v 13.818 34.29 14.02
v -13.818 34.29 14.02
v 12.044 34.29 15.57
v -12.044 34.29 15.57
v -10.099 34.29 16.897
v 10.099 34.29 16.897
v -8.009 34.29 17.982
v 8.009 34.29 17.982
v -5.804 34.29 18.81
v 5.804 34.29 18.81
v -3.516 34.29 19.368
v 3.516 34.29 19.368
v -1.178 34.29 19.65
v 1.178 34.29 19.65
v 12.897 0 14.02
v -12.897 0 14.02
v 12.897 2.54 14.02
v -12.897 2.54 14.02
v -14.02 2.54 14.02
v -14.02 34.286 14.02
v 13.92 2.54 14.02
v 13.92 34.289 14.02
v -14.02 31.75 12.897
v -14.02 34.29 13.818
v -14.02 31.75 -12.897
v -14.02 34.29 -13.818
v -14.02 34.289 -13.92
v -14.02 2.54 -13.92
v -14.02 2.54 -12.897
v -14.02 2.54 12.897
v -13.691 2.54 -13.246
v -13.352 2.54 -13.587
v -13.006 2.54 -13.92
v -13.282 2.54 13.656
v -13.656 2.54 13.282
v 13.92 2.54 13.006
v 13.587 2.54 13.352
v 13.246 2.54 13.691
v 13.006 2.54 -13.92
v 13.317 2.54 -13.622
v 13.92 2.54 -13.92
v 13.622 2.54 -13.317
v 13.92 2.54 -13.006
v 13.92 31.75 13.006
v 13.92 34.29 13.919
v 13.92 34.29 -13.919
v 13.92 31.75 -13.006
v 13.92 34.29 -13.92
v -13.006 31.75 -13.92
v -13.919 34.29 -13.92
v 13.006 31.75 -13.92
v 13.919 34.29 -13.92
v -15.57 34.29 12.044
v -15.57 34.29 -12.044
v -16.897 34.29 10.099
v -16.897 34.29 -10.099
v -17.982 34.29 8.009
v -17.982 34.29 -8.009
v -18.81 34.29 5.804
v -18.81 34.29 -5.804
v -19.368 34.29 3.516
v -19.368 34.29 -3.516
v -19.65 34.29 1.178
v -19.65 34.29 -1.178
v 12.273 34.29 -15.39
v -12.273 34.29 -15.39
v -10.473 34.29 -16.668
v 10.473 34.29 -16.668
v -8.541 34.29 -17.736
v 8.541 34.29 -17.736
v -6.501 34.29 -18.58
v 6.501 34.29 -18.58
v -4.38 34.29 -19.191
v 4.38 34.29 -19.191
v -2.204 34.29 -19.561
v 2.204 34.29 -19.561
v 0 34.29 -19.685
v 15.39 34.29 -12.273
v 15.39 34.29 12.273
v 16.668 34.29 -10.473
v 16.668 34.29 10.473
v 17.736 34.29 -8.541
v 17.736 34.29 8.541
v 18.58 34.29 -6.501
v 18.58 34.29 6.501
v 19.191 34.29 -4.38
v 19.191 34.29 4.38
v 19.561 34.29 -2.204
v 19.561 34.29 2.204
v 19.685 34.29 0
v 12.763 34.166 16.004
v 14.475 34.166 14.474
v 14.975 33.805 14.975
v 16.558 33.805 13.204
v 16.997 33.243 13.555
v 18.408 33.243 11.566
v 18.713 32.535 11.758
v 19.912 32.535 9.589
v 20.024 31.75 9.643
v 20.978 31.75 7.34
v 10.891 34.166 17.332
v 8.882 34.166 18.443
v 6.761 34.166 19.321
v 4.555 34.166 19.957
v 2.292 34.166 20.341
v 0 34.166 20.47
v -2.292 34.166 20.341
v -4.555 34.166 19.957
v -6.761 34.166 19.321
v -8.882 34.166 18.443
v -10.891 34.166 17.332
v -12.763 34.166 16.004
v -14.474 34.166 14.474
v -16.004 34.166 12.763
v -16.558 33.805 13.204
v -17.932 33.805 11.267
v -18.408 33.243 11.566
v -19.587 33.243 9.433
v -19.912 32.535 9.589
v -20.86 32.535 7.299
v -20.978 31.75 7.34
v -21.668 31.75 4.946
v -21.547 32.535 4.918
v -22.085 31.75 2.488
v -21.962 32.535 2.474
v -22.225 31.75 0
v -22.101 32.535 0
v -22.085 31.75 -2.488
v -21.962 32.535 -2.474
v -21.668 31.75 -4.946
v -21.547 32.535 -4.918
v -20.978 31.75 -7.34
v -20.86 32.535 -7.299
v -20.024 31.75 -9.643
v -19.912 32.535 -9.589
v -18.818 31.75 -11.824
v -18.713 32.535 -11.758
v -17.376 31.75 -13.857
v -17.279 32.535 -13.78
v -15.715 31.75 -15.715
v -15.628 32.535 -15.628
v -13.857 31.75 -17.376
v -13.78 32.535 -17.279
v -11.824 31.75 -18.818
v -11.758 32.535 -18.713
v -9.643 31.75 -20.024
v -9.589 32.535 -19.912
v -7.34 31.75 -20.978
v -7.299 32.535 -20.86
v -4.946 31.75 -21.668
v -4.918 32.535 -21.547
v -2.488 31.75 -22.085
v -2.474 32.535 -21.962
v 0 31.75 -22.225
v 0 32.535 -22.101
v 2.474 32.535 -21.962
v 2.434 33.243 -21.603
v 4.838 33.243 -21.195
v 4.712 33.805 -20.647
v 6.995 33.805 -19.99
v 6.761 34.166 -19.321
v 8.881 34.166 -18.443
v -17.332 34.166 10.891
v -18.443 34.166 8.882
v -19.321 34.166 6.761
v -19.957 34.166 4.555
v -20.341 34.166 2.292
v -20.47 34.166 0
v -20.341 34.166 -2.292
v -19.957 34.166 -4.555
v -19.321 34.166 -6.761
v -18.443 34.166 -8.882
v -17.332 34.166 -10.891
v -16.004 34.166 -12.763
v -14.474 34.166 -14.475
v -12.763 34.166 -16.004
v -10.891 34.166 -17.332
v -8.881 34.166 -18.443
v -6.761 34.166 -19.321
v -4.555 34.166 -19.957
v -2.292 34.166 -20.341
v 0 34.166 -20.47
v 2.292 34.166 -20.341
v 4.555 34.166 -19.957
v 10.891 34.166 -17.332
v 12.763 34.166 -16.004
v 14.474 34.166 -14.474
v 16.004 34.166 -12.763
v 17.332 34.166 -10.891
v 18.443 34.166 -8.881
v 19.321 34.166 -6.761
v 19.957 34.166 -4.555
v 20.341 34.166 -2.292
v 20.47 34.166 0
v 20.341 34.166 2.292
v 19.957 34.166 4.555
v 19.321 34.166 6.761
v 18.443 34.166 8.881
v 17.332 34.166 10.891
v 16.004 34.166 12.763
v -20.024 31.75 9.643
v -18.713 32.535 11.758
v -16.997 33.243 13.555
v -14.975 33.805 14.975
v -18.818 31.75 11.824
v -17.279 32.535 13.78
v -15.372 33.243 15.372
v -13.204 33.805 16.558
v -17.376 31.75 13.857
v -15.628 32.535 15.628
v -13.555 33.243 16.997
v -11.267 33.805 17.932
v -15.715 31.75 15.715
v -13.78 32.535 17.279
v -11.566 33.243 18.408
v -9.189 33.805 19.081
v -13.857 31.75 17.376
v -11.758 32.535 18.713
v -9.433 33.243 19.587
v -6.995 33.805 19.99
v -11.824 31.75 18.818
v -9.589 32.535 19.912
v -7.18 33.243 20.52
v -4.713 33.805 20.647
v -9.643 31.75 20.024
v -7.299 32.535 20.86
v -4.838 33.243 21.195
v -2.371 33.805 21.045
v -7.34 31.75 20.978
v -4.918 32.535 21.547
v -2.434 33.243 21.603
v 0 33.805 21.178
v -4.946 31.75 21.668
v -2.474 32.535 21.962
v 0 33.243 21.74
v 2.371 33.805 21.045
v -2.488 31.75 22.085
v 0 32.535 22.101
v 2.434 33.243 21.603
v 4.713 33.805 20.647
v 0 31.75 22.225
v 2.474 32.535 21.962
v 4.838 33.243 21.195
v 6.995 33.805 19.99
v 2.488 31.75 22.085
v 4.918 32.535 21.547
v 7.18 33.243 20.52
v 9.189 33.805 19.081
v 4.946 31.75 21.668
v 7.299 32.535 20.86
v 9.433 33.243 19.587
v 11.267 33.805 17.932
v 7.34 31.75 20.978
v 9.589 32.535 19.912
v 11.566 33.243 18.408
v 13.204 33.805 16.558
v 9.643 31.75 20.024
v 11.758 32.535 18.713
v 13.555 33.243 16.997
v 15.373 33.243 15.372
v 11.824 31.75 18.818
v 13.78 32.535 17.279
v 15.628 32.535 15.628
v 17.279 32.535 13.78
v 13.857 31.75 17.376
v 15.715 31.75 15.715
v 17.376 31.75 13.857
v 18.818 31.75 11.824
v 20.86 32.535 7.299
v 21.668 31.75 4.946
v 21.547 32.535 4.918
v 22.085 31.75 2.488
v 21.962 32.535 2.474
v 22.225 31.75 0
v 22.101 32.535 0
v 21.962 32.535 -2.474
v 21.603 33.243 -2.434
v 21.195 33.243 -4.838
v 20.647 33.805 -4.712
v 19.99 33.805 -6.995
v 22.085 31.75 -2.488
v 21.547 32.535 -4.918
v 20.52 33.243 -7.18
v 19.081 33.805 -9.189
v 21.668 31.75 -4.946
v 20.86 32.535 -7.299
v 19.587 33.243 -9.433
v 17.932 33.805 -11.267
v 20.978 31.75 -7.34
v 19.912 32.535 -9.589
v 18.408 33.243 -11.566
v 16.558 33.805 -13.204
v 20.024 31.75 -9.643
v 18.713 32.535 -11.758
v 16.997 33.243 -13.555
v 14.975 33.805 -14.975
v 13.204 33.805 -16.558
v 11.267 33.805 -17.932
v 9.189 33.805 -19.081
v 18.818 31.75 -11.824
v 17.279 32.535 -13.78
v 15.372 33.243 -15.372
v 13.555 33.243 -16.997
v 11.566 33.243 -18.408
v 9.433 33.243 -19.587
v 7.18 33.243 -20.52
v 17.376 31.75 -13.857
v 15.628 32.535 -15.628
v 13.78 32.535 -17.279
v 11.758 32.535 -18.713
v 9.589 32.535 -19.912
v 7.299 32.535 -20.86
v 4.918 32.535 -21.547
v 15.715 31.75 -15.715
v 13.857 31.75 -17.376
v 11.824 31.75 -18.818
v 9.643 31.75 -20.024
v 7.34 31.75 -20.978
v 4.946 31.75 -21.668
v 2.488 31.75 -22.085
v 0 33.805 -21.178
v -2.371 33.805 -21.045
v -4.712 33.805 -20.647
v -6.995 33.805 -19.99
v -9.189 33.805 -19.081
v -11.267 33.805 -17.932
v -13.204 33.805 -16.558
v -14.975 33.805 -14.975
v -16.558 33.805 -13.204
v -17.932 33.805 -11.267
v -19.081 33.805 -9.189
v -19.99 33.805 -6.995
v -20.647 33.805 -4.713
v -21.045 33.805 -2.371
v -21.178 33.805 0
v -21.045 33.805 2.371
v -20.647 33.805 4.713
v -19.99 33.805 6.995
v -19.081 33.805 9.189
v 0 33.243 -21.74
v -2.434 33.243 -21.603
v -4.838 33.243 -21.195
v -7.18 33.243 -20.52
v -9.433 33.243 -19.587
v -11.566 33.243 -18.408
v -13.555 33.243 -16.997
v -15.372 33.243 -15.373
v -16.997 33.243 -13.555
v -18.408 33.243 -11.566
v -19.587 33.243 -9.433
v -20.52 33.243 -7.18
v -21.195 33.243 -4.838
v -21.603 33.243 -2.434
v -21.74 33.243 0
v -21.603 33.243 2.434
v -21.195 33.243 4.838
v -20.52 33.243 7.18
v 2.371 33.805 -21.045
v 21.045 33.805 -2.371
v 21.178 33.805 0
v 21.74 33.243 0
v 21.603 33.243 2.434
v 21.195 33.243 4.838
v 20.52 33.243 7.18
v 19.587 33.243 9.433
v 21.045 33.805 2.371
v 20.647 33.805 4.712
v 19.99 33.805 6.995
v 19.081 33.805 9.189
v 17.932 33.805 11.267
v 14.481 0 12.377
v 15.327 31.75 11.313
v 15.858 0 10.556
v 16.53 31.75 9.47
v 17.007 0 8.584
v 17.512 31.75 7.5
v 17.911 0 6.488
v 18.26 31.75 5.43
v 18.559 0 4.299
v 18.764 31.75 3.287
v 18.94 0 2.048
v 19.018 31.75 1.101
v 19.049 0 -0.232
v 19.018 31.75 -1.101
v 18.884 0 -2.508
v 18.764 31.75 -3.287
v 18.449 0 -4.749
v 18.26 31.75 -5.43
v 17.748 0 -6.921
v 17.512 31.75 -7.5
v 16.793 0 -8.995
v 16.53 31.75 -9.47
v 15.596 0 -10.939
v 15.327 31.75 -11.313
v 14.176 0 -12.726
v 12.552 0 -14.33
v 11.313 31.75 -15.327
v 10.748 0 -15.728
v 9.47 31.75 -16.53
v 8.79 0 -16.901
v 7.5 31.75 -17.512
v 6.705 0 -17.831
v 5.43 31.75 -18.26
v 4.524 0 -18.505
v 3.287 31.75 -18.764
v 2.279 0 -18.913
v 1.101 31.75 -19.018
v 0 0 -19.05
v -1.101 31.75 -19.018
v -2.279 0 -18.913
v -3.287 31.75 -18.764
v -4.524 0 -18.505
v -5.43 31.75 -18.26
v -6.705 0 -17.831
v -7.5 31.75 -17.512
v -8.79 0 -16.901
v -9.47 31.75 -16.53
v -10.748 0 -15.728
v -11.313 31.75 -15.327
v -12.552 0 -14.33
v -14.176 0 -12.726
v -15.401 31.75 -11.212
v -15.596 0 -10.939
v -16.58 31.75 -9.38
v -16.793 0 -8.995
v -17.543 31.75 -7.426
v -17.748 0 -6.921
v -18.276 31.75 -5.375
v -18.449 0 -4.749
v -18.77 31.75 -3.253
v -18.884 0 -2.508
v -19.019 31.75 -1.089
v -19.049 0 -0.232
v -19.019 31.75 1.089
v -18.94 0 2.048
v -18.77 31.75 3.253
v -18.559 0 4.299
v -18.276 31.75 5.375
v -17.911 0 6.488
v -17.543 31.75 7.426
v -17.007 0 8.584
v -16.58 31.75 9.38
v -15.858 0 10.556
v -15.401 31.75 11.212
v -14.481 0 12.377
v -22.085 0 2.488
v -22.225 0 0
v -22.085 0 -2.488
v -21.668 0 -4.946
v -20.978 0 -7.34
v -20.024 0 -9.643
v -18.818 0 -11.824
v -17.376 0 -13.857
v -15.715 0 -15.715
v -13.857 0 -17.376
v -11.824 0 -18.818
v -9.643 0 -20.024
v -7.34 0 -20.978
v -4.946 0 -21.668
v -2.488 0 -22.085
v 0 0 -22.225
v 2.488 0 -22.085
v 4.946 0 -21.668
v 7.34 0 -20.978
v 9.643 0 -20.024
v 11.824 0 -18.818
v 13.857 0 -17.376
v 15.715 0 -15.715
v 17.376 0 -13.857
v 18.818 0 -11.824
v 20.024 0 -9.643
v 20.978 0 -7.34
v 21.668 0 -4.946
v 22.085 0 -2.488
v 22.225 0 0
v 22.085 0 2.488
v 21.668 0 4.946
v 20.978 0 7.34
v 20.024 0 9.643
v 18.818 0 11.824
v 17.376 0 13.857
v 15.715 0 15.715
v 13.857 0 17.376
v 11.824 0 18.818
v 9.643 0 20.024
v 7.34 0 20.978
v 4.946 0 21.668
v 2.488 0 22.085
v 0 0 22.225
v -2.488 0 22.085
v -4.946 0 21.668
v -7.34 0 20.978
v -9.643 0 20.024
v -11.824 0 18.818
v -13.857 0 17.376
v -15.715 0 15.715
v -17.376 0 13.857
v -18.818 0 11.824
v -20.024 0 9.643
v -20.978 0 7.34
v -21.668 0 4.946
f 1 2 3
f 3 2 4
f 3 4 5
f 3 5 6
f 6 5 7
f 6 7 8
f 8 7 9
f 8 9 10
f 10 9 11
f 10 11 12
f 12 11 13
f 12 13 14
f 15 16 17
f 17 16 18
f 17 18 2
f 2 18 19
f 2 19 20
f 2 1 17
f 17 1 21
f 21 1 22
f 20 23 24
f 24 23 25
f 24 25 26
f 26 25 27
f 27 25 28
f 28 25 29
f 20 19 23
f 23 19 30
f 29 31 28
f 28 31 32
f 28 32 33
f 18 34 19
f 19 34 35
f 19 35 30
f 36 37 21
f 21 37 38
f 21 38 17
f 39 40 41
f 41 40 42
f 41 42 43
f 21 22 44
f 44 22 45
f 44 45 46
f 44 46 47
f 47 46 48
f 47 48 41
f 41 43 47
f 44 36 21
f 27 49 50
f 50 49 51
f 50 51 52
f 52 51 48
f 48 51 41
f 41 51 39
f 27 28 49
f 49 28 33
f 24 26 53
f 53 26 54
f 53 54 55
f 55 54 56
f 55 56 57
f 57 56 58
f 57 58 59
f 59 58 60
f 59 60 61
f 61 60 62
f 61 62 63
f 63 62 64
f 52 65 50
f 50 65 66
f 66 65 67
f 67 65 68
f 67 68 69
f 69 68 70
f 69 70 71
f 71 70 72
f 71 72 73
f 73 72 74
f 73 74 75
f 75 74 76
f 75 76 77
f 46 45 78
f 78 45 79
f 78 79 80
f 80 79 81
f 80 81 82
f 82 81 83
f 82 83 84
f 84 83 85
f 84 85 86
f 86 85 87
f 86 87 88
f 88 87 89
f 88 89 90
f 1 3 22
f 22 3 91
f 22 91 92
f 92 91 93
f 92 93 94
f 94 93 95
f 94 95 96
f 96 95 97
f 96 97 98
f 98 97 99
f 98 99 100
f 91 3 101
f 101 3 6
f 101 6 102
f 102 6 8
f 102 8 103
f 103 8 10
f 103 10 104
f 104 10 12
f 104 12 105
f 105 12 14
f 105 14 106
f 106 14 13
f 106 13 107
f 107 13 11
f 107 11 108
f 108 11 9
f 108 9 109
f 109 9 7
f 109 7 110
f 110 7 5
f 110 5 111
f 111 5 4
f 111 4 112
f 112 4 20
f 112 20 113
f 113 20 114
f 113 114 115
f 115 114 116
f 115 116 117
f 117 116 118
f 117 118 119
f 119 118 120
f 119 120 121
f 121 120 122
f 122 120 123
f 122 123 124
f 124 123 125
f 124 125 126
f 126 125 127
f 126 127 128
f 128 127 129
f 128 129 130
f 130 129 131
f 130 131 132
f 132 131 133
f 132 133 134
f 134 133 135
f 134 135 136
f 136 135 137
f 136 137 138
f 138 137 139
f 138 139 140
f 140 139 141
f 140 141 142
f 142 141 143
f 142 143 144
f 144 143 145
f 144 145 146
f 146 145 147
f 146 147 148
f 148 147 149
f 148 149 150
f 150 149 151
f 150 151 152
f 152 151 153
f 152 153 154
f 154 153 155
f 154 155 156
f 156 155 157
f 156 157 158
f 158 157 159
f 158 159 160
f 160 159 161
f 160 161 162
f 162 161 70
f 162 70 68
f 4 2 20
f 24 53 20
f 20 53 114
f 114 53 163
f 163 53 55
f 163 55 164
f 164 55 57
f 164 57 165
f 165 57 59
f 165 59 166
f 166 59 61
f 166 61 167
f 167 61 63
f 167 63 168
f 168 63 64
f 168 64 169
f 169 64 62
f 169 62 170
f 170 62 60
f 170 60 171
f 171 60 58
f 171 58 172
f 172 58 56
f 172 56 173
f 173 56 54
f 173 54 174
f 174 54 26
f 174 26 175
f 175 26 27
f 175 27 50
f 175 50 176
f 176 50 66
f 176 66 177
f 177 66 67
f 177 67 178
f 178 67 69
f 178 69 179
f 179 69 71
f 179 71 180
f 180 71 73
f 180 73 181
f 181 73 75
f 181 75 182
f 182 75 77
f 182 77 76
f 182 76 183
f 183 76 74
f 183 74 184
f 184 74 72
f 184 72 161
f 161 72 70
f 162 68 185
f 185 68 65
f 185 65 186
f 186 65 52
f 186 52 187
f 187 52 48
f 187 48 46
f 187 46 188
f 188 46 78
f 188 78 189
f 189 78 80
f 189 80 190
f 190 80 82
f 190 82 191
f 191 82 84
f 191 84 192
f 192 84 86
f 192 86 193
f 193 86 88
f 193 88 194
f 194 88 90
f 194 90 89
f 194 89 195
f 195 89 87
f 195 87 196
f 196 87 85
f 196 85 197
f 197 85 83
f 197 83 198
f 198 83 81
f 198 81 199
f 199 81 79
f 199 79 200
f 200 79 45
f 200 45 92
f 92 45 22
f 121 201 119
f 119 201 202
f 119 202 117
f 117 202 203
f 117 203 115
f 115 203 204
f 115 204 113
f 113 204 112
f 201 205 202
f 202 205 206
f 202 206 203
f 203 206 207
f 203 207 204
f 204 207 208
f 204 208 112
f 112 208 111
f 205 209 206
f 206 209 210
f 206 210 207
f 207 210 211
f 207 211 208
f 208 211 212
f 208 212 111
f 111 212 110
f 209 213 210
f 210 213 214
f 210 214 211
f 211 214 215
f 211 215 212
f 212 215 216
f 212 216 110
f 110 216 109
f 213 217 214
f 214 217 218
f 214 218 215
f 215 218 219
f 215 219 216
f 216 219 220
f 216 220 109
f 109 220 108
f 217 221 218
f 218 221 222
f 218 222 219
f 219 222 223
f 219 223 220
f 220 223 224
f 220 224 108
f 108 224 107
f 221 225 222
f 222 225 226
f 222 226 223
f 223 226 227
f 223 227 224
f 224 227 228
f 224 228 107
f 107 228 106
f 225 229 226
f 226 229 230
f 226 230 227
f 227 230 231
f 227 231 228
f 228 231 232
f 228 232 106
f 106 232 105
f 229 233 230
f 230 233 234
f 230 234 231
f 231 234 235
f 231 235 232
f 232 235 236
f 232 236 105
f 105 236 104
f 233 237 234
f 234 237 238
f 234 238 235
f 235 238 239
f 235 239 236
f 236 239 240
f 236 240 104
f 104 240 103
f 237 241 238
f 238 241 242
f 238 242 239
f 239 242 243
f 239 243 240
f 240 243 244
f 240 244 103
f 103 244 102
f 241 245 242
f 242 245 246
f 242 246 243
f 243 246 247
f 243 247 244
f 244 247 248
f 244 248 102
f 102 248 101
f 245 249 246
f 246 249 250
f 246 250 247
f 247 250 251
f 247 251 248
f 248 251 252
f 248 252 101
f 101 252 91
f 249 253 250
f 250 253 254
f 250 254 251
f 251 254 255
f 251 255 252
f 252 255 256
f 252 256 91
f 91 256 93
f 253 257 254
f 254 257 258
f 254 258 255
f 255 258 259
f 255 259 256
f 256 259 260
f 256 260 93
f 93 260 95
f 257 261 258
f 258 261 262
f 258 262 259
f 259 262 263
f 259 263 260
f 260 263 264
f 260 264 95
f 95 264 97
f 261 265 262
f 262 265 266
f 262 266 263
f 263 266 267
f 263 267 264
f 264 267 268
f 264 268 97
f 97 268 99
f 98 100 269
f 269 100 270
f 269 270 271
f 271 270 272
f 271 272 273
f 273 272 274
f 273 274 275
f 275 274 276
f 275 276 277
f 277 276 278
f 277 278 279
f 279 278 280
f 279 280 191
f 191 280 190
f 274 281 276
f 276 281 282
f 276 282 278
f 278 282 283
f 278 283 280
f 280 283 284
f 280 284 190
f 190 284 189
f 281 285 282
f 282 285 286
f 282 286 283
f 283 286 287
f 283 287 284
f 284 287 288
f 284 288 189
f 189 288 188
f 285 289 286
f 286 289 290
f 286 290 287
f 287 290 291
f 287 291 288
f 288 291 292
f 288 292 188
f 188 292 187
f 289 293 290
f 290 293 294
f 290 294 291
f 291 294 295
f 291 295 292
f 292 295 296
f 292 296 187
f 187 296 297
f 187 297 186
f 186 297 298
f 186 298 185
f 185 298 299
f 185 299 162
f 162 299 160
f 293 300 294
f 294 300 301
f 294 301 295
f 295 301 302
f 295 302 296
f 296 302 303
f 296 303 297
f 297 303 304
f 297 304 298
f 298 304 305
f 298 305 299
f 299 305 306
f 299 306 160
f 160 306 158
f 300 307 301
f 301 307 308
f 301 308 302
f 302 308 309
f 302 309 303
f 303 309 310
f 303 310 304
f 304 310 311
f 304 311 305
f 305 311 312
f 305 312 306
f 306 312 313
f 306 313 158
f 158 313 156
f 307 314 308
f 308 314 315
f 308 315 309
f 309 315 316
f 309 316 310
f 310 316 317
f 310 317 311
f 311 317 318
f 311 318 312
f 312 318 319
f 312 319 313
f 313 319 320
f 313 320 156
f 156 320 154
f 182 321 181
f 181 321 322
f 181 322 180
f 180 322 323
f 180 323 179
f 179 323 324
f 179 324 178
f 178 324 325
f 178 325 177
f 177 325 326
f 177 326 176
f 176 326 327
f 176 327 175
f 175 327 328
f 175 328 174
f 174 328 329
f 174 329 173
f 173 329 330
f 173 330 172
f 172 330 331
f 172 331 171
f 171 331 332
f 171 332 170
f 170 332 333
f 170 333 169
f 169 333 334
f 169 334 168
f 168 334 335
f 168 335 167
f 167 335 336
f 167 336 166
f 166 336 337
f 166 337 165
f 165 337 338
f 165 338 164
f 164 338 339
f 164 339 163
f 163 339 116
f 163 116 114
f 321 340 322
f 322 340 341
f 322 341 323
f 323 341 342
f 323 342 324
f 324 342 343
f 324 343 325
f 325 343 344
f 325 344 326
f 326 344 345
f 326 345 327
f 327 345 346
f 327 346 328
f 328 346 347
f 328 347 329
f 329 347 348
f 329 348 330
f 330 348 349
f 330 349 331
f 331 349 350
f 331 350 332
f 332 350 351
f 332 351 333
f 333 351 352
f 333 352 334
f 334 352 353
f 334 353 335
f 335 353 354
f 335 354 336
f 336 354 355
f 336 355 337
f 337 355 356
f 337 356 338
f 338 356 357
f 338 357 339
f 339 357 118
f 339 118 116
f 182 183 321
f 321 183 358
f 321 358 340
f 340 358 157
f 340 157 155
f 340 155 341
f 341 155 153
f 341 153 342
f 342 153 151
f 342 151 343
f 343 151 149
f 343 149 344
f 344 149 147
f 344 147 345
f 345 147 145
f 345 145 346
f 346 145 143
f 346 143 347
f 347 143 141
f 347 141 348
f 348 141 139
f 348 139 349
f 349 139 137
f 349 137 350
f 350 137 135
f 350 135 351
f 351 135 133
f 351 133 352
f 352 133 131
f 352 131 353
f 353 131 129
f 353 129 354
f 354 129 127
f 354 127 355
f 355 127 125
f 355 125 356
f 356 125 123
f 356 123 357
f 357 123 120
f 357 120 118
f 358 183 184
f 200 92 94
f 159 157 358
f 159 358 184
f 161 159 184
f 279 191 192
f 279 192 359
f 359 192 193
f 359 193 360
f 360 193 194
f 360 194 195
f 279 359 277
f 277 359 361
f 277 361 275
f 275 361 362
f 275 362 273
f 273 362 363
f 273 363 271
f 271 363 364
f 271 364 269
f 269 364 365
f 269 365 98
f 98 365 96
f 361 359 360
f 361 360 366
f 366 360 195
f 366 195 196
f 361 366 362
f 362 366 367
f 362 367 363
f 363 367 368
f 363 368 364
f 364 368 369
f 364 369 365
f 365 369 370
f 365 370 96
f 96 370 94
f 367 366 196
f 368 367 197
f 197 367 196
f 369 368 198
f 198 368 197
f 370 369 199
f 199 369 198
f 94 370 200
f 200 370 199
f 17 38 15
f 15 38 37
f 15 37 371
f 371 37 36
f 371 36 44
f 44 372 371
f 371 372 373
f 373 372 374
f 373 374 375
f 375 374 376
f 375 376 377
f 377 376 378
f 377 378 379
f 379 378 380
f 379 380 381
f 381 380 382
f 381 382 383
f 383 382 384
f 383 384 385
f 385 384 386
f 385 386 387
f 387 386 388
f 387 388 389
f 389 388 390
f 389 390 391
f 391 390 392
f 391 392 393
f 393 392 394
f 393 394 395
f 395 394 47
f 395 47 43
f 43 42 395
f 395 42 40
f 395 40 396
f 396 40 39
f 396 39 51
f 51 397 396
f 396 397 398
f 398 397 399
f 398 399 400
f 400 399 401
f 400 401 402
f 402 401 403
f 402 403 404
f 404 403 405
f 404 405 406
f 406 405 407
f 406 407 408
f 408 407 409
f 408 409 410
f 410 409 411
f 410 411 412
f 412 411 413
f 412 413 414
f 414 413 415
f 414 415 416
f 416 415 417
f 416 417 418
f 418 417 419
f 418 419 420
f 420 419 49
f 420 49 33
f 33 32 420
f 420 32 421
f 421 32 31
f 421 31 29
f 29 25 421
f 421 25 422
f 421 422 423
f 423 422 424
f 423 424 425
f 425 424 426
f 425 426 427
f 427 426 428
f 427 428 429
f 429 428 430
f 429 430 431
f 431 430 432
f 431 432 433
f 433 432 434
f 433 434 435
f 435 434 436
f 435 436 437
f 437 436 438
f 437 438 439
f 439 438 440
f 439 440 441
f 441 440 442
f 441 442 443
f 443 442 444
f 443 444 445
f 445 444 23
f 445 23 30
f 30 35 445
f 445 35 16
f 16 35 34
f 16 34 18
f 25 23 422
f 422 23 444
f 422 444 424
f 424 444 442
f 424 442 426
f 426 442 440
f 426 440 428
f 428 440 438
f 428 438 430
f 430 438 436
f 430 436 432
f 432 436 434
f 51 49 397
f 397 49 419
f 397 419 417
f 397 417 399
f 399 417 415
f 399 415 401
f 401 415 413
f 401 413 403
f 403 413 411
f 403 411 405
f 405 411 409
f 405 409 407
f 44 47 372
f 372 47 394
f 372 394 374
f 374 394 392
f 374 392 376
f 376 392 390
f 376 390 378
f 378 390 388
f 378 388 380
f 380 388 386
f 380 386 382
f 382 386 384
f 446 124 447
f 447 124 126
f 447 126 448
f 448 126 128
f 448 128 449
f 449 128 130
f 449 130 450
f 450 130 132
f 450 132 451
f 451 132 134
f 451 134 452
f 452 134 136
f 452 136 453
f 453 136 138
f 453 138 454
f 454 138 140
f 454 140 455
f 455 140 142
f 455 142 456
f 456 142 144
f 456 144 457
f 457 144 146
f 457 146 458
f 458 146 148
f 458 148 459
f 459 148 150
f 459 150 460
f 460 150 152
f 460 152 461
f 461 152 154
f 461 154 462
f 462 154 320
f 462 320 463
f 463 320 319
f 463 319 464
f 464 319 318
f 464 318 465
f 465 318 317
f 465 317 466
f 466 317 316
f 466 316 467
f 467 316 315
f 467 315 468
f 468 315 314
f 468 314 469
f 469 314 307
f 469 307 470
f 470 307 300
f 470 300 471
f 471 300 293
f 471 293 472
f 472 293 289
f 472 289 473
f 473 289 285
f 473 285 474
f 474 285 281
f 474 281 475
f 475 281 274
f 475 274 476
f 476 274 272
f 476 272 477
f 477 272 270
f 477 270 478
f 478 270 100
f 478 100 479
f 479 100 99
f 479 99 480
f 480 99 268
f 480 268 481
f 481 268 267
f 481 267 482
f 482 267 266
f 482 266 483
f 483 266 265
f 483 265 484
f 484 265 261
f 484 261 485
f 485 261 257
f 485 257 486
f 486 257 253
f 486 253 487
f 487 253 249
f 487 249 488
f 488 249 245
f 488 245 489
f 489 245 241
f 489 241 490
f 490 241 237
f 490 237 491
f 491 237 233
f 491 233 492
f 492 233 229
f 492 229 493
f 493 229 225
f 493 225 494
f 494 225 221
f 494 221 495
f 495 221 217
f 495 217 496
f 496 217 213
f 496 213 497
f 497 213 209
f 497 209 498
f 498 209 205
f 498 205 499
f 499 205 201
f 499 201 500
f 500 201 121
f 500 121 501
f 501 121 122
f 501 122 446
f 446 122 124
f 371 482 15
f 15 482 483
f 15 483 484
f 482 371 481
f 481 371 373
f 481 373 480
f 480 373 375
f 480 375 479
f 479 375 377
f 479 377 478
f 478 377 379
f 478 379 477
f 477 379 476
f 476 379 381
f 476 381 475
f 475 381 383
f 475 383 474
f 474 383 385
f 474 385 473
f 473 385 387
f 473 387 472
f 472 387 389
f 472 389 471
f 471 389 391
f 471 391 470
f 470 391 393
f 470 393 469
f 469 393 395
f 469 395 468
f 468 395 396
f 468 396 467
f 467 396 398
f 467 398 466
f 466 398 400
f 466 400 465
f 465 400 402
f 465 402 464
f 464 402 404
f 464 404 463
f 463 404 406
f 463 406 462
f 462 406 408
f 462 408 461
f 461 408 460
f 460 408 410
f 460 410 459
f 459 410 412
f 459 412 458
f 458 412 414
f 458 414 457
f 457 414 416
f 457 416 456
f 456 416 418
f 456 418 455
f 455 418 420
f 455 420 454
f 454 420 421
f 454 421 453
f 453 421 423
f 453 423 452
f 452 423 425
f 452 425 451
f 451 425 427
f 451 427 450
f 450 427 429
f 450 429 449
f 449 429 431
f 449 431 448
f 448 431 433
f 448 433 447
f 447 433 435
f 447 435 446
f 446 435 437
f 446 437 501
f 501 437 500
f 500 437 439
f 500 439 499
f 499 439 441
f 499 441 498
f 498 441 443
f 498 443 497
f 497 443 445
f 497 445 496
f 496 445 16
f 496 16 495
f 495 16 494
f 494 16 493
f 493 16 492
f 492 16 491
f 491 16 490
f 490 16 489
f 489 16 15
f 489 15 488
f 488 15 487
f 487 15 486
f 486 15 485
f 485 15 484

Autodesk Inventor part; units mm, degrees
ref_plane "YZ Plane" through (0, 0, 0) normal (1, 0, 0) x (0, 1, 0)
ref_plane "XZ Plane" through (0, 0, 0) normal (0, 1, 0) x (-1, 0, 0)
ref_plane "XY Plane" through (0, 0, 0) normal (0, 0, 1) x (1, 0, 0)
sketch "Sketch1" plane through (0, 0, 0) normal (0, 1, 0) x (-1, 0, 0)
  circle A0 centre (0, 0) radius 22.225
  dimension "d0" = 44.45
extrude "Extrusion1" add sketch "Sketch1" along normal blind 34.29
fillet "Fillet1" radius 2.54 1 edges at (22.225, 34.29, 0)
sketch "Sketch2" plane through (0, 0, 0) normal (0, -1, 0) x (1, 0, 0)
  circle A0 centre (0, 0) radius 19.05
  dimension "d4" = 38.1
extrude "Extrusion2" cut sketch "Sketch2" against normal blind 31.75
sketch "Sketch3" plane through (0, 34.29, 0) normal (0, 1, 0) x (1, 0, 0)
  line L0 (0, 0) -> (0, -13.97)
  line L1 (0, 0) -> (-13.97, 0)
  line L2 (-14.0204, -14.0204) -> (13.9196, -14.0204)
  line L3 (13.9196, -14.0204) -> (13.9196, 13.9196)
  line L4 (13.9196, 13.9196) -> (-14.0204, 13.9196)
  line L5 (-14.0204, 13.9196) -> (-14.0204, -14.0204)
  dimension "d7" = 13.97
  dimension "d8" = 13.97
  dimension "d9" = 27.94
  dimension "d10" = 27.94
extrude "Extrusion3" cut sketch "Sketch3" against normal blind 31.75
sketch "Sketch4" plane through (0, 0, 0) normal (0, -1, 0) x (1, 0, 0)
  line L0 (13.8176, 14.0204) -> (-13.8176, 14.0204) projected
  line L1 (0, 14.0204) -> (-12.8969, 14.0204)
  arc A0 (13.9196, -13.0057) -> (13.9196, 13.0057) centre (0, 0) ccw projected
  line L2 (0, 14.0204) -> (12.8969, 14.0204)
  circle A1 centre (0, 0) radius 19.05
  point P0 (10.16, 10.16)
  point P1 (-10.16, 10.16)
  point P2 (12.8969, 14.0204)
  point P3 (-12.8969, 14.0204)
  point P4 (-13.8176, 14.0204)
extrude "Extrusion4" add sketch "Sketch4" against normal blind 34.29 contours L0 A1
properties part number "module" material "ABS Plastic"
